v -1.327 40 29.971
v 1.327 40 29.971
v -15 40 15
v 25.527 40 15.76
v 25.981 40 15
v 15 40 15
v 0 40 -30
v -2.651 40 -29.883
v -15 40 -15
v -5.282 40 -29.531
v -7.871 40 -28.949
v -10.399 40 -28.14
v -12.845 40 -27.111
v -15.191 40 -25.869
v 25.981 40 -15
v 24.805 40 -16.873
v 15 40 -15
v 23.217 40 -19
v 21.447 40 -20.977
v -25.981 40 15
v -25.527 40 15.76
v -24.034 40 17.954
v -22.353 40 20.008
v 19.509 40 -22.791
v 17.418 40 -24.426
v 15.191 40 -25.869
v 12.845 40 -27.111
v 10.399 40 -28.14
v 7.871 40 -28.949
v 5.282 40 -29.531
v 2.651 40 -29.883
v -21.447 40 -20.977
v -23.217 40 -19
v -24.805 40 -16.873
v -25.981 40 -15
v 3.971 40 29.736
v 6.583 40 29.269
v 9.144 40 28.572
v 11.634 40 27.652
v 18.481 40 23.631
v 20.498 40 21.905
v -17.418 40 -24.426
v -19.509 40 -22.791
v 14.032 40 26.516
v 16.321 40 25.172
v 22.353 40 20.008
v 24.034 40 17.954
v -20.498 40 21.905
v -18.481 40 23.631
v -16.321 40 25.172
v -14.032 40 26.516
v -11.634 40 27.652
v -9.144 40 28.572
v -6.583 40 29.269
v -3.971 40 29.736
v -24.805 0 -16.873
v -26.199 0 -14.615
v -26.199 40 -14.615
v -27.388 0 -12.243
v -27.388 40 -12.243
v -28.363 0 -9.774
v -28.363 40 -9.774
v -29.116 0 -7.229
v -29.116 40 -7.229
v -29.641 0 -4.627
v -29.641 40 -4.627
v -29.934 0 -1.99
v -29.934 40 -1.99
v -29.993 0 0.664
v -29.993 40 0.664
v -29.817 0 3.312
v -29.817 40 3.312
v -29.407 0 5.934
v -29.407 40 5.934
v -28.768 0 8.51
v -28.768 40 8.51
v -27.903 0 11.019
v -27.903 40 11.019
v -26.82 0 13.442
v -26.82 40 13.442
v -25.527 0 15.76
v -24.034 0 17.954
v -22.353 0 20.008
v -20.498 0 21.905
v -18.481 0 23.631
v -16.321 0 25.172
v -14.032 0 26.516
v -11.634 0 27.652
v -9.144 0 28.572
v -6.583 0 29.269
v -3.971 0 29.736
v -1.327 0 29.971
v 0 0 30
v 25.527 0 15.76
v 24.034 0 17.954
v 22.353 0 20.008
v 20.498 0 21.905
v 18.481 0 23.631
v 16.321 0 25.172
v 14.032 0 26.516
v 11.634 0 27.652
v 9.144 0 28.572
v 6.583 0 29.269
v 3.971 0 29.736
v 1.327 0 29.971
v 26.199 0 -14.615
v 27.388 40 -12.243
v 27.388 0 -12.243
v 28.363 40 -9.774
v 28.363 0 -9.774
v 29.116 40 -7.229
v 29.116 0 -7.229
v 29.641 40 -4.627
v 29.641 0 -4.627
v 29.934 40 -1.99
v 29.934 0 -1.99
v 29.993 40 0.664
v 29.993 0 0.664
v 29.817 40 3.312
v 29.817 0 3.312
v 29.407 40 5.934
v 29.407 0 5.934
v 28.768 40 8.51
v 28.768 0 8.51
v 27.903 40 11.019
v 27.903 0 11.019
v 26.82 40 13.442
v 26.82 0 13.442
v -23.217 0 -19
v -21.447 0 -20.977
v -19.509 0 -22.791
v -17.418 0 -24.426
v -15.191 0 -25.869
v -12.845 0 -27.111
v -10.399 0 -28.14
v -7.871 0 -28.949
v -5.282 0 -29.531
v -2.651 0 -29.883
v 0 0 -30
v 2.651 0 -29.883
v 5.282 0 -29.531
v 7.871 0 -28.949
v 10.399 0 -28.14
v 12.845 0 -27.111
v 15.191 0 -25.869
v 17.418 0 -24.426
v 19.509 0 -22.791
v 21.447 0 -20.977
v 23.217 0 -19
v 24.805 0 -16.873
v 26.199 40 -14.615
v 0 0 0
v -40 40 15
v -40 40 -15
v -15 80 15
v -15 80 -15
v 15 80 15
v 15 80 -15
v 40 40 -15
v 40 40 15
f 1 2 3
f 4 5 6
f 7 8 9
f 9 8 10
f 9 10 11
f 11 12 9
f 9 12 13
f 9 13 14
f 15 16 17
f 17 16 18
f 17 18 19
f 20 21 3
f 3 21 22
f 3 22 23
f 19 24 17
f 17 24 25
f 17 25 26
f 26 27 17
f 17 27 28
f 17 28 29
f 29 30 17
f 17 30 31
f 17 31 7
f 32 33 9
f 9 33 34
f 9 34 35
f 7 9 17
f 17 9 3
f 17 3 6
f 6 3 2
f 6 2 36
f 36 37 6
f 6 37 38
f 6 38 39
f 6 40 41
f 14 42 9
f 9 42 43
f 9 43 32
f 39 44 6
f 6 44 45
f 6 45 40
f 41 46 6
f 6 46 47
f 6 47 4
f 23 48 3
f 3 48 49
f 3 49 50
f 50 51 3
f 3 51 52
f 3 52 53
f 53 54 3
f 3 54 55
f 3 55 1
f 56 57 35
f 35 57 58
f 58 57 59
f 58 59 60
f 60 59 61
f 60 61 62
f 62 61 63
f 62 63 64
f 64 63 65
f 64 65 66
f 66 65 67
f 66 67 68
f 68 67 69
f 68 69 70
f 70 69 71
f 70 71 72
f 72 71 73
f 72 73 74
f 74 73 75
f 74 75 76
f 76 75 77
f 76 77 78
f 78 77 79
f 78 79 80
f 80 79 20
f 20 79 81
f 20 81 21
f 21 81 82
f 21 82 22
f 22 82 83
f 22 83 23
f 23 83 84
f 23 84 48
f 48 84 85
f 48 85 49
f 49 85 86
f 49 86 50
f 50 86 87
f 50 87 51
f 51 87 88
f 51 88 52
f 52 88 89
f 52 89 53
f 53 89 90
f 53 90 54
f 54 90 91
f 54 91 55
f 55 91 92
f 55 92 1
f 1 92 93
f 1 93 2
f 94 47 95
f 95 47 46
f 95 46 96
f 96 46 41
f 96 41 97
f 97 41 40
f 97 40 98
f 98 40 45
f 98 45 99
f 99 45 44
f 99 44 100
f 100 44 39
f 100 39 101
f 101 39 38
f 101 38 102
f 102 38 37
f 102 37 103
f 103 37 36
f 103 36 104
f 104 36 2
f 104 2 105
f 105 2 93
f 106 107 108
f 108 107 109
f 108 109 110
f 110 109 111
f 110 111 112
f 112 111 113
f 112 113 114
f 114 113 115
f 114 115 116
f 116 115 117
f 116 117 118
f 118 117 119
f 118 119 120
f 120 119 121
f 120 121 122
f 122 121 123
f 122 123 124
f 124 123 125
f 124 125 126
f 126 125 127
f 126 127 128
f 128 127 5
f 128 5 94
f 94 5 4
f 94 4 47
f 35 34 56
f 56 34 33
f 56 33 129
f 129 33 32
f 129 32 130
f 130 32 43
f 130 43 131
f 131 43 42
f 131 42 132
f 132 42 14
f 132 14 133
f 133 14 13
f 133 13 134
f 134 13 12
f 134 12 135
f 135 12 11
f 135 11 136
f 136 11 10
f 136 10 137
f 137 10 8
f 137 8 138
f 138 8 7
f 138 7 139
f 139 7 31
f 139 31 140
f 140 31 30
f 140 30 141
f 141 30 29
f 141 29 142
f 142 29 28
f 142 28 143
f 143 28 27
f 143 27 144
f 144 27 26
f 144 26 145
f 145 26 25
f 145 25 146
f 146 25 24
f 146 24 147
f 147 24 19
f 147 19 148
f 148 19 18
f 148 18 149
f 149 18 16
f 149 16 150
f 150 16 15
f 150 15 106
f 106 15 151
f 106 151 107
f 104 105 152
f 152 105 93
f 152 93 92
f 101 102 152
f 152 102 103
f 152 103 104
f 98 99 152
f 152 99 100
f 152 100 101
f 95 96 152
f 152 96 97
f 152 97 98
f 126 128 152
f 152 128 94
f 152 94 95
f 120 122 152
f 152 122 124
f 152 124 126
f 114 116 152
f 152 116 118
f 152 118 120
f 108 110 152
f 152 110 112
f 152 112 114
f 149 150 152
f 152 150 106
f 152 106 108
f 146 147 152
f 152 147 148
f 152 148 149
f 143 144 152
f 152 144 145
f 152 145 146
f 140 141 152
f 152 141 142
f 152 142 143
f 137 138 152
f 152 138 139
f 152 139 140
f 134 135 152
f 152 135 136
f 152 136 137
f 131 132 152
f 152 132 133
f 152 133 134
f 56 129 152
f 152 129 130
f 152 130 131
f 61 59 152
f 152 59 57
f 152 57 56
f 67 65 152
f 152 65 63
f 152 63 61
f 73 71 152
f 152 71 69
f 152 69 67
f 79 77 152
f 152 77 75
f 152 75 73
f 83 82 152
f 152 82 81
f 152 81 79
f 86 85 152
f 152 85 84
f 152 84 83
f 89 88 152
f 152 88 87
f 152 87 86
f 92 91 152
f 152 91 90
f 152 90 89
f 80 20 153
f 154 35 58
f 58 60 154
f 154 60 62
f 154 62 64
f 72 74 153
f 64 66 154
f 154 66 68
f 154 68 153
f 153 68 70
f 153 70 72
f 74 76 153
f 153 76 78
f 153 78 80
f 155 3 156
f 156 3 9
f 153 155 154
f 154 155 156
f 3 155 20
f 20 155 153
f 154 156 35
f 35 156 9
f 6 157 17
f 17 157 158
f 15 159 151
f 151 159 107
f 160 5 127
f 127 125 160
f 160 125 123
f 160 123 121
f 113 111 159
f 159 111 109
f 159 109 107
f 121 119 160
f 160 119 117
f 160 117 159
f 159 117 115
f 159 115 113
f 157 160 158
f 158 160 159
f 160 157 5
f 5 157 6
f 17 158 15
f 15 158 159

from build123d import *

# Parameters (mm, degrees)
SKETCH_1_R      = 30
EXTRUDE_1_DEPTH = 40
EXTRUDE_2_DEPTH = 15


with BuildPart() as part:
    # 草图1 → 凸台-拉伸1 (new body)
    with BuildSketch(Plane(origin=(0, 0, 0), x_dir=(1, 0, 0), z_dir=(0, 1, 0))):
        with Locations(Location((0, 0, 0), (0, 0, 270))):
            Circle(SKETCH_1_R)
    extrude(amount=EXTRUDE_1_DEPTH)

    # 草图2 → 凸台-拉伸2 (add, symmetric)
    with BuildSketch(Plane.XY):
        Polygon((-15, 40), (-15, 80), (-40, 40), align=None)
        Polygon((15, 40), (40, 40), (15, 80), align=None)
    extrude(amount=EXTRUDE_2_DEPTH, both=True)


solid = part.part
